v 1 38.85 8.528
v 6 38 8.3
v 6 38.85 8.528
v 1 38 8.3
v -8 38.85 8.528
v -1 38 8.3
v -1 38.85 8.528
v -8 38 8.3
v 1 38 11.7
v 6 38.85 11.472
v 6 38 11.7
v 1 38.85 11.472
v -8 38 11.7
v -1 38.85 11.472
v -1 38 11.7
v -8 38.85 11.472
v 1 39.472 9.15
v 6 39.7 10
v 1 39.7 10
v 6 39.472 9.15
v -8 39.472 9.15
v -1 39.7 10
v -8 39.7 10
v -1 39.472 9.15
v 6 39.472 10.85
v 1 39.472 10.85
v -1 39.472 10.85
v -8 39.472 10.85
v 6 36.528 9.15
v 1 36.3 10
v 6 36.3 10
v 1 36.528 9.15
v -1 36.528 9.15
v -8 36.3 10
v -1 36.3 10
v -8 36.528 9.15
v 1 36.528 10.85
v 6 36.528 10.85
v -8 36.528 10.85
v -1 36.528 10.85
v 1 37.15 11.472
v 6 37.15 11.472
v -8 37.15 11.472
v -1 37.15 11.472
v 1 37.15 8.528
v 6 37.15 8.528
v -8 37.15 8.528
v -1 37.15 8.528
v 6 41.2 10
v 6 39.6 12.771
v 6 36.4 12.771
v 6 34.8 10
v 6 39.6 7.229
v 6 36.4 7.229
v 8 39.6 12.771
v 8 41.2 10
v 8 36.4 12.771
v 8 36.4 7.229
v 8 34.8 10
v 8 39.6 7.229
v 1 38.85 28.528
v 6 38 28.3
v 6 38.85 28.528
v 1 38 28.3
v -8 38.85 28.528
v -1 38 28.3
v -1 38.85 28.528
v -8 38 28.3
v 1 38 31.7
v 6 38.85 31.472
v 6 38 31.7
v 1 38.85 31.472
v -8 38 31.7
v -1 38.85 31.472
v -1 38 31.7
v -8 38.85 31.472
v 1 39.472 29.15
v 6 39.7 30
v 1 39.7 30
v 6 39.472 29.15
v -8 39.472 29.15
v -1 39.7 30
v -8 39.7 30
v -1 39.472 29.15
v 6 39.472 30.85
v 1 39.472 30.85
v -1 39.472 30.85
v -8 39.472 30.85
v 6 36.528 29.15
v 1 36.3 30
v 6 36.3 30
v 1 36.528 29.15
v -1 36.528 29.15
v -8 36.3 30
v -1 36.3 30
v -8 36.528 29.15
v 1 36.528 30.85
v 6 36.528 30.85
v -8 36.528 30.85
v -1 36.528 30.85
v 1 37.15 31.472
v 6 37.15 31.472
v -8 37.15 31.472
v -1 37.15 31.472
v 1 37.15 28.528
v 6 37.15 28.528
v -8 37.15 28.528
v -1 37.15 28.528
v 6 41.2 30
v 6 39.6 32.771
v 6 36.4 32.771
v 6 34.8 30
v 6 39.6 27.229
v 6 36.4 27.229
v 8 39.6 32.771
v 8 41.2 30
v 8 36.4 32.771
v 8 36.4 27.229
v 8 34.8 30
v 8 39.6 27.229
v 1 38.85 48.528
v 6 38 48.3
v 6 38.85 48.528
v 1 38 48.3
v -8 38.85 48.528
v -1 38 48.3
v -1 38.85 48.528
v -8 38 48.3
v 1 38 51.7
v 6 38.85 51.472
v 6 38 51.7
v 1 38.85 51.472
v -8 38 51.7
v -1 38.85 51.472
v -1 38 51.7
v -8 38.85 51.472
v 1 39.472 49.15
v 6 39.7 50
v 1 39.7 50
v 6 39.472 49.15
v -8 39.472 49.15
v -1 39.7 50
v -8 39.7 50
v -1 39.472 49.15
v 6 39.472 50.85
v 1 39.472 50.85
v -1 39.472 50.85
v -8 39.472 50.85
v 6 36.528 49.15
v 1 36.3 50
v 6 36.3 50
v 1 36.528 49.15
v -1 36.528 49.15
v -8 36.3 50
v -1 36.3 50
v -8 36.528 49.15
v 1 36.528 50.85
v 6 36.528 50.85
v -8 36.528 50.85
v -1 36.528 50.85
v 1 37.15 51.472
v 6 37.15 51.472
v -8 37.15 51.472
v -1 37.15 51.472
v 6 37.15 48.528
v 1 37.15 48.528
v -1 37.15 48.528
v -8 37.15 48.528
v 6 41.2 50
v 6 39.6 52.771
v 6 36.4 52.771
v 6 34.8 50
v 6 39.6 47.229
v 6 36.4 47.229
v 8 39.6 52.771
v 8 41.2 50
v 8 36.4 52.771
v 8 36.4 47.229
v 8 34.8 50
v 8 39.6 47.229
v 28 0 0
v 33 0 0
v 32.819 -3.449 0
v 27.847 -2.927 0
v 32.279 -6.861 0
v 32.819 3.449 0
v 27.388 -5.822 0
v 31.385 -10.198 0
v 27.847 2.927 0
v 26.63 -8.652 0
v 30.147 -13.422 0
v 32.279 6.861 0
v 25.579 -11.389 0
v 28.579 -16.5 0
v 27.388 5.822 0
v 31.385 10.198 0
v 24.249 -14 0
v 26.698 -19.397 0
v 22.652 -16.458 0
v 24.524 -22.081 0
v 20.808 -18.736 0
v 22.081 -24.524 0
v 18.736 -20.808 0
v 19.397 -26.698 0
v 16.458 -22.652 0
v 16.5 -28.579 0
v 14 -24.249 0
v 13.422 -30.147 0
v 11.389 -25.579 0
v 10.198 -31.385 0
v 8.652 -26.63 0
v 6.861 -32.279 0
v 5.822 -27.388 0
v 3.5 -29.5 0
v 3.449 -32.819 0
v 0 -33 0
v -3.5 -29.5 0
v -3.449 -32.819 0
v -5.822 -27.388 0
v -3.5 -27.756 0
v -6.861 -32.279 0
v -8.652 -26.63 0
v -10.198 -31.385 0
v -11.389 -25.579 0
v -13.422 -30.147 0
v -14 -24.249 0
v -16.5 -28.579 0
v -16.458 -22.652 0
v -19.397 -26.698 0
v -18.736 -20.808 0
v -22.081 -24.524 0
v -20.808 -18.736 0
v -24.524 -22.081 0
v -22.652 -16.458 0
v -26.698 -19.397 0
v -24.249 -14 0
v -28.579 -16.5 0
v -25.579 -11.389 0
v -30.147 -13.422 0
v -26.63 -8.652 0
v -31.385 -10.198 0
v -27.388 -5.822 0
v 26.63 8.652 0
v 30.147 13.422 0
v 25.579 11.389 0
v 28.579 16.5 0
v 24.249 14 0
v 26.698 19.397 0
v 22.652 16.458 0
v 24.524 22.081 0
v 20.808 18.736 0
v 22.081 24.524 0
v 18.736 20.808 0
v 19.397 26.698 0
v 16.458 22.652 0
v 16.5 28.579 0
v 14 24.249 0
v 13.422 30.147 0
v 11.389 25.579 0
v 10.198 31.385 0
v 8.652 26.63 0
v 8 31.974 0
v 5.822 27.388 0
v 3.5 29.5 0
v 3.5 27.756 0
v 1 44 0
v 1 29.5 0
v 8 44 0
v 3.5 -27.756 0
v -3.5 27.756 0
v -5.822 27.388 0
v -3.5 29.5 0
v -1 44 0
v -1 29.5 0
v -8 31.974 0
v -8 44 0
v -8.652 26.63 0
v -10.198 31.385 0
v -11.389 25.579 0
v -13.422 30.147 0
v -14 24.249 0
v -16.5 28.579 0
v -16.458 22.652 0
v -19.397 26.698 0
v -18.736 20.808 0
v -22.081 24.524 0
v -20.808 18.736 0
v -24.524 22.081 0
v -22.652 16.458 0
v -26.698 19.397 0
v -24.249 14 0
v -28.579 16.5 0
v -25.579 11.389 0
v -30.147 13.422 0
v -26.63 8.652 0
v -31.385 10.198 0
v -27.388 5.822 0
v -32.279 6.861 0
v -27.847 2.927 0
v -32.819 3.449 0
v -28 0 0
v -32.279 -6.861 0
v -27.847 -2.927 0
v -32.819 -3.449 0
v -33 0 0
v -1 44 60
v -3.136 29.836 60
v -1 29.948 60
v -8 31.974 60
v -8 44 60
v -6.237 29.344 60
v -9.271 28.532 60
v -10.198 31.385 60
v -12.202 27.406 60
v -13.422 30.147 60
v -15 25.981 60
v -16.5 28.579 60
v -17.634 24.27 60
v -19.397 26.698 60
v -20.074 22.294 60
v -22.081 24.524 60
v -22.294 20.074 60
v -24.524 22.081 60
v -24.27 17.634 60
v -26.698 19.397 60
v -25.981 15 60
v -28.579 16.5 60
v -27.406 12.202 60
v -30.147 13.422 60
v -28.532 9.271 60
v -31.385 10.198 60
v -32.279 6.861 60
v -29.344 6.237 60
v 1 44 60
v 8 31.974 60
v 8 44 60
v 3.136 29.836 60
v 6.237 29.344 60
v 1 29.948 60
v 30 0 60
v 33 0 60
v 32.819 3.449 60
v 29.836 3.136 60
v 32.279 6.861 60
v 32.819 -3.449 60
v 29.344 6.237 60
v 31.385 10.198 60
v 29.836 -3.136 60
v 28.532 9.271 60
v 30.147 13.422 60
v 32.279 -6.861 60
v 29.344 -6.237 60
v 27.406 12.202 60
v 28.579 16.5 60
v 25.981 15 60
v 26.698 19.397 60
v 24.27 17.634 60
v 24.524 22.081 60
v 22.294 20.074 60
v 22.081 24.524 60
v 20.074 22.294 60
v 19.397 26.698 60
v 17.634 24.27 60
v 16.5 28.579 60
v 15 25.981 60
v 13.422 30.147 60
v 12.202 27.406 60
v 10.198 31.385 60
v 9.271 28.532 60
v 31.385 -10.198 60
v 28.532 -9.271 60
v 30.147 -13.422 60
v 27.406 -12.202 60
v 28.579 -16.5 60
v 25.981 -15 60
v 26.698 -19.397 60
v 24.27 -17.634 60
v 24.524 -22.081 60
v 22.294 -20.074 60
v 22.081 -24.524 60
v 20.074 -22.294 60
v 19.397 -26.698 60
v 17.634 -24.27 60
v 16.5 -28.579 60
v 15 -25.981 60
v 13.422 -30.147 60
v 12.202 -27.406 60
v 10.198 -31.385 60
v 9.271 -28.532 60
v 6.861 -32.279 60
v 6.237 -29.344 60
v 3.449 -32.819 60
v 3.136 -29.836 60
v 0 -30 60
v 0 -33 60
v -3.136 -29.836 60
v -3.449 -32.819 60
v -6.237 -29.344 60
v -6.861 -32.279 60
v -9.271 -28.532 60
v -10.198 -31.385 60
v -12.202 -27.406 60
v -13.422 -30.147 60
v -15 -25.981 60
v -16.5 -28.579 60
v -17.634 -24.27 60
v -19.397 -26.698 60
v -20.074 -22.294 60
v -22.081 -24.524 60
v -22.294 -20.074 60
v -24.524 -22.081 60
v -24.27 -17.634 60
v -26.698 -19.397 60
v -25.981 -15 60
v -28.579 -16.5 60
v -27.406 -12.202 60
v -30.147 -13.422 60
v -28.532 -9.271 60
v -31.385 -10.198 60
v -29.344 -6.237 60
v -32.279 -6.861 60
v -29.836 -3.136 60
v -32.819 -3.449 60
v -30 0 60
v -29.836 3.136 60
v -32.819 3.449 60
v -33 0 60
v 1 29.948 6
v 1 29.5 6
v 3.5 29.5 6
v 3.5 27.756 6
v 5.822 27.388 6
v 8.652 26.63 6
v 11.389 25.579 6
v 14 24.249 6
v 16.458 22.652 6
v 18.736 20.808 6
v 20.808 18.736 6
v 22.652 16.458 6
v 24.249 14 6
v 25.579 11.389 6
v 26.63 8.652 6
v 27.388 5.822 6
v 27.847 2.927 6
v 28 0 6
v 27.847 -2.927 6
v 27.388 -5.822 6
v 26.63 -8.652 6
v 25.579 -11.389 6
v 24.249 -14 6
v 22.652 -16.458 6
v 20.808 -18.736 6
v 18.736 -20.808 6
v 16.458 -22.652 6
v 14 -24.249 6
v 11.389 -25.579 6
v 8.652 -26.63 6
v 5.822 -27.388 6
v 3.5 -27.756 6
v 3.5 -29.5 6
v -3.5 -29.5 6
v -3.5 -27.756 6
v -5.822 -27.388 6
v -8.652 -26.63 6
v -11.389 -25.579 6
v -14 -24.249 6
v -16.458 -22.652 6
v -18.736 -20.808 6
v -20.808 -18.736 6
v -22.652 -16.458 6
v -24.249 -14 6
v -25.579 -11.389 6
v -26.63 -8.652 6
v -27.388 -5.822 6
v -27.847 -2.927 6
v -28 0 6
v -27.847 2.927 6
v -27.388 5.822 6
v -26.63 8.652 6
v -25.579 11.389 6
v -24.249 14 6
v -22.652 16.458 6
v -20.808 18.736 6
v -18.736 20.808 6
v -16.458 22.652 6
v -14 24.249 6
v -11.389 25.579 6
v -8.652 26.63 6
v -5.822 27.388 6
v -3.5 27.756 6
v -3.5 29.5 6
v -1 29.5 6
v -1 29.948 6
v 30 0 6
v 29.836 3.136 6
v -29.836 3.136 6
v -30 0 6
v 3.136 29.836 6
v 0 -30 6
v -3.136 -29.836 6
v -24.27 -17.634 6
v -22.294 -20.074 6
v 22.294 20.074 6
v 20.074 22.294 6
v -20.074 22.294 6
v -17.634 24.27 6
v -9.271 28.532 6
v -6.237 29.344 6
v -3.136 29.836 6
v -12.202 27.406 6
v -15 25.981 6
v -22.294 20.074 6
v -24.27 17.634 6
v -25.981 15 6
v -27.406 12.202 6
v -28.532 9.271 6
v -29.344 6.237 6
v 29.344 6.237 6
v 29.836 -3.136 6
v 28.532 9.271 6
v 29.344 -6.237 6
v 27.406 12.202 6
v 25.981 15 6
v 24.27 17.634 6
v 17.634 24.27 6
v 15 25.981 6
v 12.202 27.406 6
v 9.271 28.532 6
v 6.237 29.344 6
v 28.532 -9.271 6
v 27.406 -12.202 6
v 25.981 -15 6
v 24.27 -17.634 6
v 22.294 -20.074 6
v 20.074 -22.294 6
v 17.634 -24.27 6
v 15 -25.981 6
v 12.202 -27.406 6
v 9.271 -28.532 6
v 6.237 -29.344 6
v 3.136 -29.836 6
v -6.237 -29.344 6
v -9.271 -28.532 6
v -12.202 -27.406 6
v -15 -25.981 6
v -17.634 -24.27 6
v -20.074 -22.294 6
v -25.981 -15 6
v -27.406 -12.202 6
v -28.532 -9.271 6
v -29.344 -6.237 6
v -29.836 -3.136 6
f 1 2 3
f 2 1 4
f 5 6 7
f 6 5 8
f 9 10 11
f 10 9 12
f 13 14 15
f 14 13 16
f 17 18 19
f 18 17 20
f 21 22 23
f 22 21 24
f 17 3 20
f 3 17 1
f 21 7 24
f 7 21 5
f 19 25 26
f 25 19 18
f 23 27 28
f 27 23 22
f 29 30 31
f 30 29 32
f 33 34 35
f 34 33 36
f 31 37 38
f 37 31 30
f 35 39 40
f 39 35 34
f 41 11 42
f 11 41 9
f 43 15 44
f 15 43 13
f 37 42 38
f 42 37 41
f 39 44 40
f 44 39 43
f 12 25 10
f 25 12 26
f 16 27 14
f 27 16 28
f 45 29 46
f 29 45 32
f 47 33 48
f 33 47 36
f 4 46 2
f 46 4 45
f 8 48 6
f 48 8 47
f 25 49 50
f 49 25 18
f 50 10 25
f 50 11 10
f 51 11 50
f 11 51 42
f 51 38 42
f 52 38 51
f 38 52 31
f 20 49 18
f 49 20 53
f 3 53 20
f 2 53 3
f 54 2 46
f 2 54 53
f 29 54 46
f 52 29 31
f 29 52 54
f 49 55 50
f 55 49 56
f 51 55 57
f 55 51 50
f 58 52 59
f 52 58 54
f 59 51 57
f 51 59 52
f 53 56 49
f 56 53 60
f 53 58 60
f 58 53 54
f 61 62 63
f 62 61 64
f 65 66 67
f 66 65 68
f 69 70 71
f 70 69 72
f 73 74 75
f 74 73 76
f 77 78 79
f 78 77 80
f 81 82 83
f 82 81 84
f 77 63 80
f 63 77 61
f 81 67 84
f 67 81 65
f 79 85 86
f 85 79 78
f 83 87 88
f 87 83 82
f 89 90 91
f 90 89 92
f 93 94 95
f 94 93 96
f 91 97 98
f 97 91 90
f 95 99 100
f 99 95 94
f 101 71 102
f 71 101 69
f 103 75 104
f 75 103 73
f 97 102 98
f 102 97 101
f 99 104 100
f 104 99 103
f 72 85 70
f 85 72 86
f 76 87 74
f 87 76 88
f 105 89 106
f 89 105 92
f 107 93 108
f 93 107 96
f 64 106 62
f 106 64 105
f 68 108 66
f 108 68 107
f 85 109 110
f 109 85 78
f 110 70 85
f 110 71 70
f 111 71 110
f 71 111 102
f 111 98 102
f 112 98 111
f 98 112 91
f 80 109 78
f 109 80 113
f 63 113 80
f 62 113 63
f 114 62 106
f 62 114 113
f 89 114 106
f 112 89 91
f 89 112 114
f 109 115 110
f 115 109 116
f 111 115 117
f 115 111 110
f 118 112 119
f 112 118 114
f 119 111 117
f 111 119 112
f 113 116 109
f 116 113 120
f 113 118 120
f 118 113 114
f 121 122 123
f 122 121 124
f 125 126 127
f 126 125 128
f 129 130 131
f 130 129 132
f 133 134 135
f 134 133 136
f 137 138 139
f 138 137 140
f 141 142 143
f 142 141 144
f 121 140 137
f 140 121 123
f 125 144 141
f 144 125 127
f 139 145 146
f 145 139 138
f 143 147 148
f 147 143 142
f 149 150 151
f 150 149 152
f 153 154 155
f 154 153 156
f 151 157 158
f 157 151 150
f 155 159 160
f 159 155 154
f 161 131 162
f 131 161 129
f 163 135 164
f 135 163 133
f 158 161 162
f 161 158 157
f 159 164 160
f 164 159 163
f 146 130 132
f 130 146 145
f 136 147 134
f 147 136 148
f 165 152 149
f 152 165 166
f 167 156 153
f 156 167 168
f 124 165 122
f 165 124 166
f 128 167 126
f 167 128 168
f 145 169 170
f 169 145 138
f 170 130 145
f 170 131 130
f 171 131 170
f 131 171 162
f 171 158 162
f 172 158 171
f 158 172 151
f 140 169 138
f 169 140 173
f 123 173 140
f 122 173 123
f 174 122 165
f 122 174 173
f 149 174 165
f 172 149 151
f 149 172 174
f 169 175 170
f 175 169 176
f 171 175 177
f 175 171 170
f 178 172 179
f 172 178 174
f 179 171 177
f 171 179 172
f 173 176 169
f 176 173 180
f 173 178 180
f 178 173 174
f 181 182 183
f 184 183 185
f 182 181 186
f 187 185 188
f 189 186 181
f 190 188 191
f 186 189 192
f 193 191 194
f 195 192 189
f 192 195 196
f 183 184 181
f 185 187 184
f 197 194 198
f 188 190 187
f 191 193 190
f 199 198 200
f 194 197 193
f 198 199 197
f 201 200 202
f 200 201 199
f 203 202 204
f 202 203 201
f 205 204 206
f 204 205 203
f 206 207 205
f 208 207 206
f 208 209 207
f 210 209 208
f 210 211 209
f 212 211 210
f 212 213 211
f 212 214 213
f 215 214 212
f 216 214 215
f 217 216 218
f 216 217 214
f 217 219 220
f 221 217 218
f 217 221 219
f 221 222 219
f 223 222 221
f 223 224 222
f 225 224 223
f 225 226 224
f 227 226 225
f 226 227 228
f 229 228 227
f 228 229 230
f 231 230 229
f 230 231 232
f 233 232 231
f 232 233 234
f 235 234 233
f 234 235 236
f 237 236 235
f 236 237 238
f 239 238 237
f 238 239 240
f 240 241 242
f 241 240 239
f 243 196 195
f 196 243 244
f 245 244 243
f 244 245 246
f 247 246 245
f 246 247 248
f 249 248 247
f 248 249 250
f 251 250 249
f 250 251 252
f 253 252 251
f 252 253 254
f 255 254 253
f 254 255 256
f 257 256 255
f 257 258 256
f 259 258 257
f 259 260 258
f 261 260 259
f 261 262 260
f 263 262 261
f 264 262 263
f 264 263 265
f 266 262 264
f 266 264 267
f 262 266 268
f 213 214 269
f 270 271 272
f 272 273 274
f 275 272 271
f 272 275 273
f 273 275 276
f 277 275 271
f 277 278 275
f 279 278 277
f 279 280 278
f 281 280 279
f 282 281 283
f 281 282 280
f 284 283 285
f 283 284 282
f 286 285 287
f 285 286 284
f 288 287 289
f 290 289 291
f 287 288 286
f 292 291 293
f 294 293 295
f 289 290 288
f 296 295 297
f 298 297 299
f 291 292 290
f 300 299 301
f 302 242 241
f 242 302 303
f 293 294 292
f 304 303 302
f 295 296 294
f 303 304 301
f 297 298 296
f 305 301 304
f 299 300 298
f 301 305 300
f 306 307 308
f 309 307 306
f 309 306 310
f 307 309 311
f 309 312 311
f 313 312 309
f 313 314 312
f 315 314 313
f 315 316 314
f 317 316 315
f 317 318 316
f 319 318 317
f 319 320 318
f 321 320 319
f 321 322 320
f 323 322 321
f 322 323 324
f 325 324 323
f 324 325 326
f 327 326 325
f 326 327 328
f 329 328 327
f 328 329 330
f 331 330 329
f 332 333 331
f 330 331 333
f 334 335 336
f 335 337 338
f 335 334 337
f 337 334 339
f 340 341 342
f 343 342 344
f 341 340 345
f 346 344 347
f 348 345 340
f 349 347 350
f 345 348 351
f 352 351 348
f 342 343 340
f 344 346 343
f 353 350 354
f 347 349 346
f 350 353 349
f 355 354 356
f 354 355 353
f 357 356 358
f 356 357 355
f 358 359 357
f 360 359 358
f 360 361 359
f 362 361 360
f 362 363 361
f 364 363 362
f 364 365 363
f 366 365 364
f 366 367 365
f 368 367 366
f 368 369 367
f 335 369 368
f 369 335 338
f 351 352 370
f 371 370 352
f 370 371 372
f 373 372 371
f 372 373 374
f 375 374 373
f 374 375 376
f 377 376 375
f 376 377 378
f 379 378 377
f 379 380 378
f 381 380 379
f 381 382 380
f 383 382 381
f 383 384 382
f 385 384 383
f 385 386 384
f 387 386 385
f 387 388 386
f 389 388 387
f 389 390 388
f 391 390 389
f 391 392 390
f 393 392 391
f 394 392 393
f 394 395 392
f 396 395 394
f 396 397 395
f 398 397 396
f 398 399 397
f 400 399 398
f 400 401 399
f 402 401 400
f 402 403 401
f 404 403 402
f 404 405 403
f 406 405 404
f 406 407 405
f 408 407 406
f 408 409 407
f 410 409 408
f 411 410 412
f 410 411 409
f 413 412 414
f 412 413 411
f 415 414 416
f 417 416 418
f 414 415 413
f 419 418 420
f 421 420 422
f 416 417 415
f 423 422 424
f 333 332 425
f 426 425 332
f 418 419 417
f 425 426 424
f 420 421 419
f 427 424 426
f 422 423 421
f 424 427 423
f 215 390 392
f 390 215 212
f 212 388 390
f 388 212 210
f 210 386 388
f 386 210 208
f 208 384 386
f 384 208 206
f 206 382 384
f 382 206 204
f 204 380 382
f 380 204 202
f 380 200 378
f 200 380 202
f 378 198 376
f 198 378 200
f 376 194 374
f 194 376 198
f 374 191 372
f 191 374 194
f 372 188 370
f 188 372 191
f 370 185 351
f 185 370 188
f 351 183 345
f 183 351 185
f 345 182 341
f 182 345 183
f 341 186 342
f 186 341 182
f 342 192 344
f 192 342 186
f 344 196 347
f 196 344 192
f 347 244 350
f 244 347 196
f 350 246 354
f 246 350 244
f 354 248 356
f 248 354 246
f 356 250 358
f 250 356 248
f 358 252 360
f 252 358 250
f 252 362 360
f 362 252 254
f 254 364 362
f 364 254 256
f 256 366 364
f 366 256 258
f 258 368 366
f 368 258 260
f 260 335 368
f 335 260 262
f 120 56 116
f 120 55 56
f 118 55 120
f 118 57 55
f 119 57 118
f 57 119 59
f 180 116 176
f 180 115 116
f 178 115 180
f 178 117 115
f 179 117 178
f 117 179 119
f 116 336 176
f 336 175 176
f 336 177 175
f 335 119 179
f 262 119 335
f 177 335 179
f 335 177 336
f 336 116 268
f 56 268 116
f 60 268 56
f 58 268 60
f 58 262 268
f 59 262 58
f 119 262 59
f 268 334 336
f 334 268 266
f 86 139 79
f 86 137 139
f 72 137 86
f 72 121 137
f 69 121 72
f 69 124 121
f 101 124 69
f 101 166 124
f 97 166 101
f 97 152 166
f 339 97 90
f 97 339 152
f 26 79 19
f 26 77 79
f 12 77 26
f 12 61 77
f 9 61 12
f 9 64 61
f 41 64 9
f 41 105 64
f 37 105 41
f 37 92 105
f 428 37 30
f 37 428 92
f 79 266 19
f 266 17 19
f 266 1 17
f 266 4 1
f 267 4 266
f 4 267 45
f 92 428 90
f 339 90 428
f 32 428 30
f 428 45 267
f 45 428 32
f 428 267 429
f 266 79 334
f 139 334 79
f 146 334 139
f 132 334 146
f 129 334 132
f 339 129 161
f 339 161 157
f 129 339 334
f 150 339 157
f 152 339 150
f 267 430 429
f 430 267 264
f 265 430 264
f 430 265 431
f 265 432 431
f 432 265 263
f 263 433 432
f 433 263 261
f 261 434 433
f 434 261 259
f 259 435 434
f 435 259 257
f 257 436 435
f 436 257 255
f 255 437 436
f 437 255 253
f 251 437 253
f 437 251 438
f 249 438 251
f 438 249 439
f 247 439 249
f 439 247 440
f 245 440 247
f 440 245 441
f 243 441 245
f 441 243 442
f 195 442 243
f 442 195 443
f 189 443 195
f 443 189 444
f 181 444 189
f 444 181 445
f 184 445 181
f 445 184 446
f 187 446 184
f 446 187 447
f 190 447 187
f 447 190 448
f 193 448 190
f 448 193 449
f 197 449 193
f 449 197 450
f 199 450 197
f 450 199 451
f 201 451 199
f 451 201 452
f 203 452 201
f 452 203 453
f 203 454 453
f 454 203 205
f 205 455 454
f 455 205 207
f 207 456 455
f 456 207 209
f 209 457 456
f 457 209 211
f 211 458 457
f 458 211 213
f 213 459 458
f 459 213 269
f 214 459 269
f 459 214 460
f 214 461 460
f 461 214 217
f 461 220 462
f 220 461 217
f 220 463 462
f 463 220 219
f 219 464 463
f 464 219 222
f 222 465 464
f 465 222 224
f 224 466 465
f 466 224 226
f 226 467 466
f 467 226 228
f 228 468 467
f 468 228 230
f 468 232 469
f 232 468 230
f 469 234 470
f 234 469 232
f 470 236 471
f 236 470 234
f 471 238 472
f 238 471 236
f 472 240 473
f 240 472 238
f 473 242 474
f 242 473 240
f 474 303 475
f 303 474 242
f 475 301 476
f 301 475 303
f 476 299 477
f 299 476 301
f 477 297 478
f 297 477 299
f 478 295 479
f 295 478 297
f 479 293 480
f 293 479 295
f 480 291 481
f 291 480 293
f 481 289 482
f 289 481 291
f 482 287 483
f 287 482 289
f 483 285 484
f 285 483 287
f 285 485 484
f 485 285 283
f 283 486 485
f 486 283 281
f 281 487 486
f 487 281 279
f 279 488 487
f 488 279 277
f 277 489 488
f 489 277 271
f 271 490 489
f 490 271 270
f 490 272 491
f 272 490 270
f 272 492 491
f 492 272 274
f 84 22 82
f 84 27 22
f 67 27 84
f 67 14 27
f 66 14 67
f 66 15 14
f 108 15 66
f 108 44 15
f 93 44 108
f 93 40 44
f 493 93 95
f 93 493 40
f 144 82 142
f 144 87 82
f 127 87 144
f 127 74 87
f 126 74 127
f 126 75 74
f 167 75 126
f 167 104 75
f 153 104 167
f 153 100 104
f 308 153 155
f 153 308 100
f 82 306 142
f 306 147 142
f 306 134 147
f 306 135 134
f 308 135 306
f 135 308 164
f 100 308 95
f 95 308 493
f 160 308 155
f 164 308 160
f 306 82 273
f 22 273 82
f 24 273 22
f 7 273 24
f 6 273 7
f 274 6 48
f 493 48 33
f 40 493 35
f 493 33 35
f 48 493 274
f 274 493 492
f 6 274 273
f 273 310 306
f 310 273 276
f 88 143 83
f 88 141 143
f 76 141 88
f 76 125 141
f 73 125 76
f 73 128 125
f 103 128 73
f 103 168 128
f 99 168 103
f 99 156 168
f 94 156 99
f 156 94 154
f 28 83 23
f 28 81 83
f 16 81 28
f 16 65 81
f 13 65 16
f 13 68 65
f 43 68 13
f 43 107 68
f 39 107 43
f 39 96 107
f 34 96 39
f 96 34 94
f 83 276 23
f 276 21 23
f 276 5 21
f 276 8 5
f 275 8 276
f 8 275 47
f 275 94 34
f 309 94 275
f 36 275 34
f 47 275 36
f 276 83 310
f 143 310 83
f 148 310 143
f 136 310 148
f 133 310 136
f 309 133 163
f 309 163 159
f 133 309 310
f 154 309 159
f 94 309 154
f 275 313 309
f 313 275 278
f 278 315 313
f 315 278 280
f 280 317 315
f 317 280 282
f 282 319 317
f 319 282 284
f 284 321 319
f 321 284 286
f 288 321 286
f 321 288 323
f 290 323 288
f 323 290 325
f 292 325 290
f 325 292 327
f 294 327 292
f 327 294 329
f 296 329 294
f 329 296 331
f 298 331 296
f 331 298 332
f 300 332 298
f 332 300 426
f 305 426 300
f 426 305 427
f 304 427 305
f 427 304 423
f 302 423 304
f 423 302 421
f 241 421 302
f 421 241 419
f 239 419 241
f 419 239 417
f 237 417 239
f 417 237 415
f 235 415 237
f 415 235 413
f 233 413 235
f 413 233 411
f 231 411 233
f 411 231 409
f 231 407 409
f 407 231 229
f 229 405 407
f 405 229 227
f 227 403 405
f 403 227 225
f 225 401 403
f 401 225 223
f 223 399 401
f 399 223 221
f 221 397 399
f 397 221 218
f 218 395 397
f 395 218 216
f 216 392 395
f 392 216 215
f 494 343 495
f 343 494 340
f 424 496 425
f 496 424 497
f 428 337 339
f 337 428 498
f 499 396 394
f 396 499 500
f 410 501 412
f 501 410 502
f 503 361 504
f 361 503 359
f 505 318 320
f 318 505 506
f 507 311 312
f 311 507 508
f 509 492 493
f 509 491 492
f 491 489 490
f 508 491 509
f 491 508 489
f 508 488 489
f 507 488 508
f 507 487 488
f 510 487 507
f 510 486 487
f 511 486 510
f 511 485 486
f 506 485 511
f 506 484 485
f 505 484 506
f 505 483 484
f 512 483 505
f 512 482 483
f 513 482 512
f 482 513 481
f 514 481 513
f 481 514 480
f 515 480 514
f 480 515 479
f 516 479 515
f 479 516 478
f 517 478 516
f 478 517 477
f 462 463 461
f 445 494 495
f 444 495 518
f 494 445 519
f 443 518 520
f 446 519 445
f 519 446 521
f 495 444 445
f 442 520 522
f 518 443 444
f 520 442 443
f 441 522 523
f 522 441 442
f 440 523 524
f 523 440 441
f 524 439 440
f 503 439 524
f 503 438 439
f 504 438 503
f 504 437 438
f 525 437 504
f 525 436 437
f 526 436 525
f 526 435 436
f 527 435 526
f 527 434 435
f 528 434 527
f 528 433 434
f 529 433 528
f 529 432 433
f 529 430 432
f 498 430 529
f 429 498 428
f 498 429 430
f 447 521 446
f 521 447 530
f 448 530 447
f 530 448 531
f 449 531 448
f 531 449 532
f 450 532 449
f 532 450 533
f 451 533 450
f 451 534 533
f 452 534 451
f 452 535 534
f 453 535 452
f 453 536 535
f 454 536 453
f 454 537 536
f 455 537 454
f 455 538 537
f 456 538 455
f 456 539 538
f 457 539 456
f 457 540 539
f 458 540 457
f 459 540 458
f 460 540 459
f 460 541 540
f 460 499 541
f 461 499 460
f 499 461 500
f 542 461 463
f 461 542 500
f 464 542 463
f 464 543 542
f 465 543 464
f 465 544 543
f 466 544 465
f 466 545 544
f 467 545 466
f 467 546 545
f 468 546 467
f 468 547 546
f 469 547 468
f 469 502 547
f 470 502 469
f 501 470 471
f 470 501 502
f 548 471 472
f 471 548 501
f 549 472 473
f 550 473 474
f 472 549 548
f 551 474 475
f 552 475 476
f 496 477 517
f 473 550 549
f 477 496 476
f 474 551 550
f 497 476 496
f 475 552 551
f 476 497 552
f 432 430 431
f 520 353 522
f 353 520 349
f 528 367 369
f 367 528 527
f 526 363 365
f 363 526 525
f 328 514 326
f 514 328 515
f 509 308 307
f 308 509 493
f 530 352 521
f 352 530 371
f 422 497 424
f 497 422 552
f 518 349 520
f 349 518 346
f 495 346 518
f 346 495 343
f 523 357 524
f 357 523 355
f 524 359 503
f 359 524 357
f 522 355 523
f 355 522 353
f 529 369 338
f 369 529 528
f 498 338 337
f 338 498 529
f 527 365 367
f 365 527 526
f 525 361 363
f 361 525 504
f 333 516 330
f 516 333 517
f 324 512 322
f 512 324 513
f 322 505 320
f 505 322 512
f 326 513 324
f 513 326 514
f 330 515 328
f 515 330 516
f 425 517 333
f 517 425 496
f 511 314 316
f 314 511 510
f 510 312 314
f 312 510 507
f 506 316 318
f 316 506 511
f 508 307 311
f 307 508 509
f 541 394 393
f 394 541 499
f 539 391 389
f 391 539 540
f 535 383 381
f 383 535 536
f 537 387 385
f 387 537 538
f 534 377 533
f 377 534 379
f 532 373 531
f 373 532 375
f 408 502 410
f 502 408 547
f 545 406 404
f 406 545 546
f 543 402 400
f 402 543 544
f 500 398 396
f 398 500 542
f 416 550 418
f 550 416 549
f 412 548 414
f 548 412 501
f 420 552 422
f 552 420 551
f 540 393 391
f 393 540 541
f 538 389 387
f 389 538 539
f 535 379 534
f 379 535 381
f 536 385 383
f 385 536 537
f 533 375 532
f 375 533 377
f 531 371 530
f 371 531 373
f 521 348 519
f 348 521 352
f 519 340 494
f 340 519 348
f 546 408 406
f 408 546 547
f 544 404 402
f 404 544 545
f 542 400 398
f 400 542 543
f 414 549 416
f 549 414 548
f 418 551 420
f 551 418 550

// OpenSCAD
$fn = 60;

difference() {
    linear_extrude(height=60, convexity=10) {
        difference() {
            union() {
                circle(r=33);
                translate([0, 32])
                    square([16, 24], center=true);
            }
            circle(r=28);
            square([7, 59], center=true);
            translate([0, 32])
                square([2, 64], center=true);
        }
    }
    translate([0, 0, 6])
        cylinder(r=30, h=60);
    for (z = [10:20:50]) {
        translate([0, 38, z]) rotate([0, 90, 0]) {
            # cylinder(r=1.7, h=30, center=true, $fn=12);
            translate([0, 0, 6]) rotate([0, 0, 90]) # cylinder(r=3.2, h=10, $fn=6);
        }
    }
}
